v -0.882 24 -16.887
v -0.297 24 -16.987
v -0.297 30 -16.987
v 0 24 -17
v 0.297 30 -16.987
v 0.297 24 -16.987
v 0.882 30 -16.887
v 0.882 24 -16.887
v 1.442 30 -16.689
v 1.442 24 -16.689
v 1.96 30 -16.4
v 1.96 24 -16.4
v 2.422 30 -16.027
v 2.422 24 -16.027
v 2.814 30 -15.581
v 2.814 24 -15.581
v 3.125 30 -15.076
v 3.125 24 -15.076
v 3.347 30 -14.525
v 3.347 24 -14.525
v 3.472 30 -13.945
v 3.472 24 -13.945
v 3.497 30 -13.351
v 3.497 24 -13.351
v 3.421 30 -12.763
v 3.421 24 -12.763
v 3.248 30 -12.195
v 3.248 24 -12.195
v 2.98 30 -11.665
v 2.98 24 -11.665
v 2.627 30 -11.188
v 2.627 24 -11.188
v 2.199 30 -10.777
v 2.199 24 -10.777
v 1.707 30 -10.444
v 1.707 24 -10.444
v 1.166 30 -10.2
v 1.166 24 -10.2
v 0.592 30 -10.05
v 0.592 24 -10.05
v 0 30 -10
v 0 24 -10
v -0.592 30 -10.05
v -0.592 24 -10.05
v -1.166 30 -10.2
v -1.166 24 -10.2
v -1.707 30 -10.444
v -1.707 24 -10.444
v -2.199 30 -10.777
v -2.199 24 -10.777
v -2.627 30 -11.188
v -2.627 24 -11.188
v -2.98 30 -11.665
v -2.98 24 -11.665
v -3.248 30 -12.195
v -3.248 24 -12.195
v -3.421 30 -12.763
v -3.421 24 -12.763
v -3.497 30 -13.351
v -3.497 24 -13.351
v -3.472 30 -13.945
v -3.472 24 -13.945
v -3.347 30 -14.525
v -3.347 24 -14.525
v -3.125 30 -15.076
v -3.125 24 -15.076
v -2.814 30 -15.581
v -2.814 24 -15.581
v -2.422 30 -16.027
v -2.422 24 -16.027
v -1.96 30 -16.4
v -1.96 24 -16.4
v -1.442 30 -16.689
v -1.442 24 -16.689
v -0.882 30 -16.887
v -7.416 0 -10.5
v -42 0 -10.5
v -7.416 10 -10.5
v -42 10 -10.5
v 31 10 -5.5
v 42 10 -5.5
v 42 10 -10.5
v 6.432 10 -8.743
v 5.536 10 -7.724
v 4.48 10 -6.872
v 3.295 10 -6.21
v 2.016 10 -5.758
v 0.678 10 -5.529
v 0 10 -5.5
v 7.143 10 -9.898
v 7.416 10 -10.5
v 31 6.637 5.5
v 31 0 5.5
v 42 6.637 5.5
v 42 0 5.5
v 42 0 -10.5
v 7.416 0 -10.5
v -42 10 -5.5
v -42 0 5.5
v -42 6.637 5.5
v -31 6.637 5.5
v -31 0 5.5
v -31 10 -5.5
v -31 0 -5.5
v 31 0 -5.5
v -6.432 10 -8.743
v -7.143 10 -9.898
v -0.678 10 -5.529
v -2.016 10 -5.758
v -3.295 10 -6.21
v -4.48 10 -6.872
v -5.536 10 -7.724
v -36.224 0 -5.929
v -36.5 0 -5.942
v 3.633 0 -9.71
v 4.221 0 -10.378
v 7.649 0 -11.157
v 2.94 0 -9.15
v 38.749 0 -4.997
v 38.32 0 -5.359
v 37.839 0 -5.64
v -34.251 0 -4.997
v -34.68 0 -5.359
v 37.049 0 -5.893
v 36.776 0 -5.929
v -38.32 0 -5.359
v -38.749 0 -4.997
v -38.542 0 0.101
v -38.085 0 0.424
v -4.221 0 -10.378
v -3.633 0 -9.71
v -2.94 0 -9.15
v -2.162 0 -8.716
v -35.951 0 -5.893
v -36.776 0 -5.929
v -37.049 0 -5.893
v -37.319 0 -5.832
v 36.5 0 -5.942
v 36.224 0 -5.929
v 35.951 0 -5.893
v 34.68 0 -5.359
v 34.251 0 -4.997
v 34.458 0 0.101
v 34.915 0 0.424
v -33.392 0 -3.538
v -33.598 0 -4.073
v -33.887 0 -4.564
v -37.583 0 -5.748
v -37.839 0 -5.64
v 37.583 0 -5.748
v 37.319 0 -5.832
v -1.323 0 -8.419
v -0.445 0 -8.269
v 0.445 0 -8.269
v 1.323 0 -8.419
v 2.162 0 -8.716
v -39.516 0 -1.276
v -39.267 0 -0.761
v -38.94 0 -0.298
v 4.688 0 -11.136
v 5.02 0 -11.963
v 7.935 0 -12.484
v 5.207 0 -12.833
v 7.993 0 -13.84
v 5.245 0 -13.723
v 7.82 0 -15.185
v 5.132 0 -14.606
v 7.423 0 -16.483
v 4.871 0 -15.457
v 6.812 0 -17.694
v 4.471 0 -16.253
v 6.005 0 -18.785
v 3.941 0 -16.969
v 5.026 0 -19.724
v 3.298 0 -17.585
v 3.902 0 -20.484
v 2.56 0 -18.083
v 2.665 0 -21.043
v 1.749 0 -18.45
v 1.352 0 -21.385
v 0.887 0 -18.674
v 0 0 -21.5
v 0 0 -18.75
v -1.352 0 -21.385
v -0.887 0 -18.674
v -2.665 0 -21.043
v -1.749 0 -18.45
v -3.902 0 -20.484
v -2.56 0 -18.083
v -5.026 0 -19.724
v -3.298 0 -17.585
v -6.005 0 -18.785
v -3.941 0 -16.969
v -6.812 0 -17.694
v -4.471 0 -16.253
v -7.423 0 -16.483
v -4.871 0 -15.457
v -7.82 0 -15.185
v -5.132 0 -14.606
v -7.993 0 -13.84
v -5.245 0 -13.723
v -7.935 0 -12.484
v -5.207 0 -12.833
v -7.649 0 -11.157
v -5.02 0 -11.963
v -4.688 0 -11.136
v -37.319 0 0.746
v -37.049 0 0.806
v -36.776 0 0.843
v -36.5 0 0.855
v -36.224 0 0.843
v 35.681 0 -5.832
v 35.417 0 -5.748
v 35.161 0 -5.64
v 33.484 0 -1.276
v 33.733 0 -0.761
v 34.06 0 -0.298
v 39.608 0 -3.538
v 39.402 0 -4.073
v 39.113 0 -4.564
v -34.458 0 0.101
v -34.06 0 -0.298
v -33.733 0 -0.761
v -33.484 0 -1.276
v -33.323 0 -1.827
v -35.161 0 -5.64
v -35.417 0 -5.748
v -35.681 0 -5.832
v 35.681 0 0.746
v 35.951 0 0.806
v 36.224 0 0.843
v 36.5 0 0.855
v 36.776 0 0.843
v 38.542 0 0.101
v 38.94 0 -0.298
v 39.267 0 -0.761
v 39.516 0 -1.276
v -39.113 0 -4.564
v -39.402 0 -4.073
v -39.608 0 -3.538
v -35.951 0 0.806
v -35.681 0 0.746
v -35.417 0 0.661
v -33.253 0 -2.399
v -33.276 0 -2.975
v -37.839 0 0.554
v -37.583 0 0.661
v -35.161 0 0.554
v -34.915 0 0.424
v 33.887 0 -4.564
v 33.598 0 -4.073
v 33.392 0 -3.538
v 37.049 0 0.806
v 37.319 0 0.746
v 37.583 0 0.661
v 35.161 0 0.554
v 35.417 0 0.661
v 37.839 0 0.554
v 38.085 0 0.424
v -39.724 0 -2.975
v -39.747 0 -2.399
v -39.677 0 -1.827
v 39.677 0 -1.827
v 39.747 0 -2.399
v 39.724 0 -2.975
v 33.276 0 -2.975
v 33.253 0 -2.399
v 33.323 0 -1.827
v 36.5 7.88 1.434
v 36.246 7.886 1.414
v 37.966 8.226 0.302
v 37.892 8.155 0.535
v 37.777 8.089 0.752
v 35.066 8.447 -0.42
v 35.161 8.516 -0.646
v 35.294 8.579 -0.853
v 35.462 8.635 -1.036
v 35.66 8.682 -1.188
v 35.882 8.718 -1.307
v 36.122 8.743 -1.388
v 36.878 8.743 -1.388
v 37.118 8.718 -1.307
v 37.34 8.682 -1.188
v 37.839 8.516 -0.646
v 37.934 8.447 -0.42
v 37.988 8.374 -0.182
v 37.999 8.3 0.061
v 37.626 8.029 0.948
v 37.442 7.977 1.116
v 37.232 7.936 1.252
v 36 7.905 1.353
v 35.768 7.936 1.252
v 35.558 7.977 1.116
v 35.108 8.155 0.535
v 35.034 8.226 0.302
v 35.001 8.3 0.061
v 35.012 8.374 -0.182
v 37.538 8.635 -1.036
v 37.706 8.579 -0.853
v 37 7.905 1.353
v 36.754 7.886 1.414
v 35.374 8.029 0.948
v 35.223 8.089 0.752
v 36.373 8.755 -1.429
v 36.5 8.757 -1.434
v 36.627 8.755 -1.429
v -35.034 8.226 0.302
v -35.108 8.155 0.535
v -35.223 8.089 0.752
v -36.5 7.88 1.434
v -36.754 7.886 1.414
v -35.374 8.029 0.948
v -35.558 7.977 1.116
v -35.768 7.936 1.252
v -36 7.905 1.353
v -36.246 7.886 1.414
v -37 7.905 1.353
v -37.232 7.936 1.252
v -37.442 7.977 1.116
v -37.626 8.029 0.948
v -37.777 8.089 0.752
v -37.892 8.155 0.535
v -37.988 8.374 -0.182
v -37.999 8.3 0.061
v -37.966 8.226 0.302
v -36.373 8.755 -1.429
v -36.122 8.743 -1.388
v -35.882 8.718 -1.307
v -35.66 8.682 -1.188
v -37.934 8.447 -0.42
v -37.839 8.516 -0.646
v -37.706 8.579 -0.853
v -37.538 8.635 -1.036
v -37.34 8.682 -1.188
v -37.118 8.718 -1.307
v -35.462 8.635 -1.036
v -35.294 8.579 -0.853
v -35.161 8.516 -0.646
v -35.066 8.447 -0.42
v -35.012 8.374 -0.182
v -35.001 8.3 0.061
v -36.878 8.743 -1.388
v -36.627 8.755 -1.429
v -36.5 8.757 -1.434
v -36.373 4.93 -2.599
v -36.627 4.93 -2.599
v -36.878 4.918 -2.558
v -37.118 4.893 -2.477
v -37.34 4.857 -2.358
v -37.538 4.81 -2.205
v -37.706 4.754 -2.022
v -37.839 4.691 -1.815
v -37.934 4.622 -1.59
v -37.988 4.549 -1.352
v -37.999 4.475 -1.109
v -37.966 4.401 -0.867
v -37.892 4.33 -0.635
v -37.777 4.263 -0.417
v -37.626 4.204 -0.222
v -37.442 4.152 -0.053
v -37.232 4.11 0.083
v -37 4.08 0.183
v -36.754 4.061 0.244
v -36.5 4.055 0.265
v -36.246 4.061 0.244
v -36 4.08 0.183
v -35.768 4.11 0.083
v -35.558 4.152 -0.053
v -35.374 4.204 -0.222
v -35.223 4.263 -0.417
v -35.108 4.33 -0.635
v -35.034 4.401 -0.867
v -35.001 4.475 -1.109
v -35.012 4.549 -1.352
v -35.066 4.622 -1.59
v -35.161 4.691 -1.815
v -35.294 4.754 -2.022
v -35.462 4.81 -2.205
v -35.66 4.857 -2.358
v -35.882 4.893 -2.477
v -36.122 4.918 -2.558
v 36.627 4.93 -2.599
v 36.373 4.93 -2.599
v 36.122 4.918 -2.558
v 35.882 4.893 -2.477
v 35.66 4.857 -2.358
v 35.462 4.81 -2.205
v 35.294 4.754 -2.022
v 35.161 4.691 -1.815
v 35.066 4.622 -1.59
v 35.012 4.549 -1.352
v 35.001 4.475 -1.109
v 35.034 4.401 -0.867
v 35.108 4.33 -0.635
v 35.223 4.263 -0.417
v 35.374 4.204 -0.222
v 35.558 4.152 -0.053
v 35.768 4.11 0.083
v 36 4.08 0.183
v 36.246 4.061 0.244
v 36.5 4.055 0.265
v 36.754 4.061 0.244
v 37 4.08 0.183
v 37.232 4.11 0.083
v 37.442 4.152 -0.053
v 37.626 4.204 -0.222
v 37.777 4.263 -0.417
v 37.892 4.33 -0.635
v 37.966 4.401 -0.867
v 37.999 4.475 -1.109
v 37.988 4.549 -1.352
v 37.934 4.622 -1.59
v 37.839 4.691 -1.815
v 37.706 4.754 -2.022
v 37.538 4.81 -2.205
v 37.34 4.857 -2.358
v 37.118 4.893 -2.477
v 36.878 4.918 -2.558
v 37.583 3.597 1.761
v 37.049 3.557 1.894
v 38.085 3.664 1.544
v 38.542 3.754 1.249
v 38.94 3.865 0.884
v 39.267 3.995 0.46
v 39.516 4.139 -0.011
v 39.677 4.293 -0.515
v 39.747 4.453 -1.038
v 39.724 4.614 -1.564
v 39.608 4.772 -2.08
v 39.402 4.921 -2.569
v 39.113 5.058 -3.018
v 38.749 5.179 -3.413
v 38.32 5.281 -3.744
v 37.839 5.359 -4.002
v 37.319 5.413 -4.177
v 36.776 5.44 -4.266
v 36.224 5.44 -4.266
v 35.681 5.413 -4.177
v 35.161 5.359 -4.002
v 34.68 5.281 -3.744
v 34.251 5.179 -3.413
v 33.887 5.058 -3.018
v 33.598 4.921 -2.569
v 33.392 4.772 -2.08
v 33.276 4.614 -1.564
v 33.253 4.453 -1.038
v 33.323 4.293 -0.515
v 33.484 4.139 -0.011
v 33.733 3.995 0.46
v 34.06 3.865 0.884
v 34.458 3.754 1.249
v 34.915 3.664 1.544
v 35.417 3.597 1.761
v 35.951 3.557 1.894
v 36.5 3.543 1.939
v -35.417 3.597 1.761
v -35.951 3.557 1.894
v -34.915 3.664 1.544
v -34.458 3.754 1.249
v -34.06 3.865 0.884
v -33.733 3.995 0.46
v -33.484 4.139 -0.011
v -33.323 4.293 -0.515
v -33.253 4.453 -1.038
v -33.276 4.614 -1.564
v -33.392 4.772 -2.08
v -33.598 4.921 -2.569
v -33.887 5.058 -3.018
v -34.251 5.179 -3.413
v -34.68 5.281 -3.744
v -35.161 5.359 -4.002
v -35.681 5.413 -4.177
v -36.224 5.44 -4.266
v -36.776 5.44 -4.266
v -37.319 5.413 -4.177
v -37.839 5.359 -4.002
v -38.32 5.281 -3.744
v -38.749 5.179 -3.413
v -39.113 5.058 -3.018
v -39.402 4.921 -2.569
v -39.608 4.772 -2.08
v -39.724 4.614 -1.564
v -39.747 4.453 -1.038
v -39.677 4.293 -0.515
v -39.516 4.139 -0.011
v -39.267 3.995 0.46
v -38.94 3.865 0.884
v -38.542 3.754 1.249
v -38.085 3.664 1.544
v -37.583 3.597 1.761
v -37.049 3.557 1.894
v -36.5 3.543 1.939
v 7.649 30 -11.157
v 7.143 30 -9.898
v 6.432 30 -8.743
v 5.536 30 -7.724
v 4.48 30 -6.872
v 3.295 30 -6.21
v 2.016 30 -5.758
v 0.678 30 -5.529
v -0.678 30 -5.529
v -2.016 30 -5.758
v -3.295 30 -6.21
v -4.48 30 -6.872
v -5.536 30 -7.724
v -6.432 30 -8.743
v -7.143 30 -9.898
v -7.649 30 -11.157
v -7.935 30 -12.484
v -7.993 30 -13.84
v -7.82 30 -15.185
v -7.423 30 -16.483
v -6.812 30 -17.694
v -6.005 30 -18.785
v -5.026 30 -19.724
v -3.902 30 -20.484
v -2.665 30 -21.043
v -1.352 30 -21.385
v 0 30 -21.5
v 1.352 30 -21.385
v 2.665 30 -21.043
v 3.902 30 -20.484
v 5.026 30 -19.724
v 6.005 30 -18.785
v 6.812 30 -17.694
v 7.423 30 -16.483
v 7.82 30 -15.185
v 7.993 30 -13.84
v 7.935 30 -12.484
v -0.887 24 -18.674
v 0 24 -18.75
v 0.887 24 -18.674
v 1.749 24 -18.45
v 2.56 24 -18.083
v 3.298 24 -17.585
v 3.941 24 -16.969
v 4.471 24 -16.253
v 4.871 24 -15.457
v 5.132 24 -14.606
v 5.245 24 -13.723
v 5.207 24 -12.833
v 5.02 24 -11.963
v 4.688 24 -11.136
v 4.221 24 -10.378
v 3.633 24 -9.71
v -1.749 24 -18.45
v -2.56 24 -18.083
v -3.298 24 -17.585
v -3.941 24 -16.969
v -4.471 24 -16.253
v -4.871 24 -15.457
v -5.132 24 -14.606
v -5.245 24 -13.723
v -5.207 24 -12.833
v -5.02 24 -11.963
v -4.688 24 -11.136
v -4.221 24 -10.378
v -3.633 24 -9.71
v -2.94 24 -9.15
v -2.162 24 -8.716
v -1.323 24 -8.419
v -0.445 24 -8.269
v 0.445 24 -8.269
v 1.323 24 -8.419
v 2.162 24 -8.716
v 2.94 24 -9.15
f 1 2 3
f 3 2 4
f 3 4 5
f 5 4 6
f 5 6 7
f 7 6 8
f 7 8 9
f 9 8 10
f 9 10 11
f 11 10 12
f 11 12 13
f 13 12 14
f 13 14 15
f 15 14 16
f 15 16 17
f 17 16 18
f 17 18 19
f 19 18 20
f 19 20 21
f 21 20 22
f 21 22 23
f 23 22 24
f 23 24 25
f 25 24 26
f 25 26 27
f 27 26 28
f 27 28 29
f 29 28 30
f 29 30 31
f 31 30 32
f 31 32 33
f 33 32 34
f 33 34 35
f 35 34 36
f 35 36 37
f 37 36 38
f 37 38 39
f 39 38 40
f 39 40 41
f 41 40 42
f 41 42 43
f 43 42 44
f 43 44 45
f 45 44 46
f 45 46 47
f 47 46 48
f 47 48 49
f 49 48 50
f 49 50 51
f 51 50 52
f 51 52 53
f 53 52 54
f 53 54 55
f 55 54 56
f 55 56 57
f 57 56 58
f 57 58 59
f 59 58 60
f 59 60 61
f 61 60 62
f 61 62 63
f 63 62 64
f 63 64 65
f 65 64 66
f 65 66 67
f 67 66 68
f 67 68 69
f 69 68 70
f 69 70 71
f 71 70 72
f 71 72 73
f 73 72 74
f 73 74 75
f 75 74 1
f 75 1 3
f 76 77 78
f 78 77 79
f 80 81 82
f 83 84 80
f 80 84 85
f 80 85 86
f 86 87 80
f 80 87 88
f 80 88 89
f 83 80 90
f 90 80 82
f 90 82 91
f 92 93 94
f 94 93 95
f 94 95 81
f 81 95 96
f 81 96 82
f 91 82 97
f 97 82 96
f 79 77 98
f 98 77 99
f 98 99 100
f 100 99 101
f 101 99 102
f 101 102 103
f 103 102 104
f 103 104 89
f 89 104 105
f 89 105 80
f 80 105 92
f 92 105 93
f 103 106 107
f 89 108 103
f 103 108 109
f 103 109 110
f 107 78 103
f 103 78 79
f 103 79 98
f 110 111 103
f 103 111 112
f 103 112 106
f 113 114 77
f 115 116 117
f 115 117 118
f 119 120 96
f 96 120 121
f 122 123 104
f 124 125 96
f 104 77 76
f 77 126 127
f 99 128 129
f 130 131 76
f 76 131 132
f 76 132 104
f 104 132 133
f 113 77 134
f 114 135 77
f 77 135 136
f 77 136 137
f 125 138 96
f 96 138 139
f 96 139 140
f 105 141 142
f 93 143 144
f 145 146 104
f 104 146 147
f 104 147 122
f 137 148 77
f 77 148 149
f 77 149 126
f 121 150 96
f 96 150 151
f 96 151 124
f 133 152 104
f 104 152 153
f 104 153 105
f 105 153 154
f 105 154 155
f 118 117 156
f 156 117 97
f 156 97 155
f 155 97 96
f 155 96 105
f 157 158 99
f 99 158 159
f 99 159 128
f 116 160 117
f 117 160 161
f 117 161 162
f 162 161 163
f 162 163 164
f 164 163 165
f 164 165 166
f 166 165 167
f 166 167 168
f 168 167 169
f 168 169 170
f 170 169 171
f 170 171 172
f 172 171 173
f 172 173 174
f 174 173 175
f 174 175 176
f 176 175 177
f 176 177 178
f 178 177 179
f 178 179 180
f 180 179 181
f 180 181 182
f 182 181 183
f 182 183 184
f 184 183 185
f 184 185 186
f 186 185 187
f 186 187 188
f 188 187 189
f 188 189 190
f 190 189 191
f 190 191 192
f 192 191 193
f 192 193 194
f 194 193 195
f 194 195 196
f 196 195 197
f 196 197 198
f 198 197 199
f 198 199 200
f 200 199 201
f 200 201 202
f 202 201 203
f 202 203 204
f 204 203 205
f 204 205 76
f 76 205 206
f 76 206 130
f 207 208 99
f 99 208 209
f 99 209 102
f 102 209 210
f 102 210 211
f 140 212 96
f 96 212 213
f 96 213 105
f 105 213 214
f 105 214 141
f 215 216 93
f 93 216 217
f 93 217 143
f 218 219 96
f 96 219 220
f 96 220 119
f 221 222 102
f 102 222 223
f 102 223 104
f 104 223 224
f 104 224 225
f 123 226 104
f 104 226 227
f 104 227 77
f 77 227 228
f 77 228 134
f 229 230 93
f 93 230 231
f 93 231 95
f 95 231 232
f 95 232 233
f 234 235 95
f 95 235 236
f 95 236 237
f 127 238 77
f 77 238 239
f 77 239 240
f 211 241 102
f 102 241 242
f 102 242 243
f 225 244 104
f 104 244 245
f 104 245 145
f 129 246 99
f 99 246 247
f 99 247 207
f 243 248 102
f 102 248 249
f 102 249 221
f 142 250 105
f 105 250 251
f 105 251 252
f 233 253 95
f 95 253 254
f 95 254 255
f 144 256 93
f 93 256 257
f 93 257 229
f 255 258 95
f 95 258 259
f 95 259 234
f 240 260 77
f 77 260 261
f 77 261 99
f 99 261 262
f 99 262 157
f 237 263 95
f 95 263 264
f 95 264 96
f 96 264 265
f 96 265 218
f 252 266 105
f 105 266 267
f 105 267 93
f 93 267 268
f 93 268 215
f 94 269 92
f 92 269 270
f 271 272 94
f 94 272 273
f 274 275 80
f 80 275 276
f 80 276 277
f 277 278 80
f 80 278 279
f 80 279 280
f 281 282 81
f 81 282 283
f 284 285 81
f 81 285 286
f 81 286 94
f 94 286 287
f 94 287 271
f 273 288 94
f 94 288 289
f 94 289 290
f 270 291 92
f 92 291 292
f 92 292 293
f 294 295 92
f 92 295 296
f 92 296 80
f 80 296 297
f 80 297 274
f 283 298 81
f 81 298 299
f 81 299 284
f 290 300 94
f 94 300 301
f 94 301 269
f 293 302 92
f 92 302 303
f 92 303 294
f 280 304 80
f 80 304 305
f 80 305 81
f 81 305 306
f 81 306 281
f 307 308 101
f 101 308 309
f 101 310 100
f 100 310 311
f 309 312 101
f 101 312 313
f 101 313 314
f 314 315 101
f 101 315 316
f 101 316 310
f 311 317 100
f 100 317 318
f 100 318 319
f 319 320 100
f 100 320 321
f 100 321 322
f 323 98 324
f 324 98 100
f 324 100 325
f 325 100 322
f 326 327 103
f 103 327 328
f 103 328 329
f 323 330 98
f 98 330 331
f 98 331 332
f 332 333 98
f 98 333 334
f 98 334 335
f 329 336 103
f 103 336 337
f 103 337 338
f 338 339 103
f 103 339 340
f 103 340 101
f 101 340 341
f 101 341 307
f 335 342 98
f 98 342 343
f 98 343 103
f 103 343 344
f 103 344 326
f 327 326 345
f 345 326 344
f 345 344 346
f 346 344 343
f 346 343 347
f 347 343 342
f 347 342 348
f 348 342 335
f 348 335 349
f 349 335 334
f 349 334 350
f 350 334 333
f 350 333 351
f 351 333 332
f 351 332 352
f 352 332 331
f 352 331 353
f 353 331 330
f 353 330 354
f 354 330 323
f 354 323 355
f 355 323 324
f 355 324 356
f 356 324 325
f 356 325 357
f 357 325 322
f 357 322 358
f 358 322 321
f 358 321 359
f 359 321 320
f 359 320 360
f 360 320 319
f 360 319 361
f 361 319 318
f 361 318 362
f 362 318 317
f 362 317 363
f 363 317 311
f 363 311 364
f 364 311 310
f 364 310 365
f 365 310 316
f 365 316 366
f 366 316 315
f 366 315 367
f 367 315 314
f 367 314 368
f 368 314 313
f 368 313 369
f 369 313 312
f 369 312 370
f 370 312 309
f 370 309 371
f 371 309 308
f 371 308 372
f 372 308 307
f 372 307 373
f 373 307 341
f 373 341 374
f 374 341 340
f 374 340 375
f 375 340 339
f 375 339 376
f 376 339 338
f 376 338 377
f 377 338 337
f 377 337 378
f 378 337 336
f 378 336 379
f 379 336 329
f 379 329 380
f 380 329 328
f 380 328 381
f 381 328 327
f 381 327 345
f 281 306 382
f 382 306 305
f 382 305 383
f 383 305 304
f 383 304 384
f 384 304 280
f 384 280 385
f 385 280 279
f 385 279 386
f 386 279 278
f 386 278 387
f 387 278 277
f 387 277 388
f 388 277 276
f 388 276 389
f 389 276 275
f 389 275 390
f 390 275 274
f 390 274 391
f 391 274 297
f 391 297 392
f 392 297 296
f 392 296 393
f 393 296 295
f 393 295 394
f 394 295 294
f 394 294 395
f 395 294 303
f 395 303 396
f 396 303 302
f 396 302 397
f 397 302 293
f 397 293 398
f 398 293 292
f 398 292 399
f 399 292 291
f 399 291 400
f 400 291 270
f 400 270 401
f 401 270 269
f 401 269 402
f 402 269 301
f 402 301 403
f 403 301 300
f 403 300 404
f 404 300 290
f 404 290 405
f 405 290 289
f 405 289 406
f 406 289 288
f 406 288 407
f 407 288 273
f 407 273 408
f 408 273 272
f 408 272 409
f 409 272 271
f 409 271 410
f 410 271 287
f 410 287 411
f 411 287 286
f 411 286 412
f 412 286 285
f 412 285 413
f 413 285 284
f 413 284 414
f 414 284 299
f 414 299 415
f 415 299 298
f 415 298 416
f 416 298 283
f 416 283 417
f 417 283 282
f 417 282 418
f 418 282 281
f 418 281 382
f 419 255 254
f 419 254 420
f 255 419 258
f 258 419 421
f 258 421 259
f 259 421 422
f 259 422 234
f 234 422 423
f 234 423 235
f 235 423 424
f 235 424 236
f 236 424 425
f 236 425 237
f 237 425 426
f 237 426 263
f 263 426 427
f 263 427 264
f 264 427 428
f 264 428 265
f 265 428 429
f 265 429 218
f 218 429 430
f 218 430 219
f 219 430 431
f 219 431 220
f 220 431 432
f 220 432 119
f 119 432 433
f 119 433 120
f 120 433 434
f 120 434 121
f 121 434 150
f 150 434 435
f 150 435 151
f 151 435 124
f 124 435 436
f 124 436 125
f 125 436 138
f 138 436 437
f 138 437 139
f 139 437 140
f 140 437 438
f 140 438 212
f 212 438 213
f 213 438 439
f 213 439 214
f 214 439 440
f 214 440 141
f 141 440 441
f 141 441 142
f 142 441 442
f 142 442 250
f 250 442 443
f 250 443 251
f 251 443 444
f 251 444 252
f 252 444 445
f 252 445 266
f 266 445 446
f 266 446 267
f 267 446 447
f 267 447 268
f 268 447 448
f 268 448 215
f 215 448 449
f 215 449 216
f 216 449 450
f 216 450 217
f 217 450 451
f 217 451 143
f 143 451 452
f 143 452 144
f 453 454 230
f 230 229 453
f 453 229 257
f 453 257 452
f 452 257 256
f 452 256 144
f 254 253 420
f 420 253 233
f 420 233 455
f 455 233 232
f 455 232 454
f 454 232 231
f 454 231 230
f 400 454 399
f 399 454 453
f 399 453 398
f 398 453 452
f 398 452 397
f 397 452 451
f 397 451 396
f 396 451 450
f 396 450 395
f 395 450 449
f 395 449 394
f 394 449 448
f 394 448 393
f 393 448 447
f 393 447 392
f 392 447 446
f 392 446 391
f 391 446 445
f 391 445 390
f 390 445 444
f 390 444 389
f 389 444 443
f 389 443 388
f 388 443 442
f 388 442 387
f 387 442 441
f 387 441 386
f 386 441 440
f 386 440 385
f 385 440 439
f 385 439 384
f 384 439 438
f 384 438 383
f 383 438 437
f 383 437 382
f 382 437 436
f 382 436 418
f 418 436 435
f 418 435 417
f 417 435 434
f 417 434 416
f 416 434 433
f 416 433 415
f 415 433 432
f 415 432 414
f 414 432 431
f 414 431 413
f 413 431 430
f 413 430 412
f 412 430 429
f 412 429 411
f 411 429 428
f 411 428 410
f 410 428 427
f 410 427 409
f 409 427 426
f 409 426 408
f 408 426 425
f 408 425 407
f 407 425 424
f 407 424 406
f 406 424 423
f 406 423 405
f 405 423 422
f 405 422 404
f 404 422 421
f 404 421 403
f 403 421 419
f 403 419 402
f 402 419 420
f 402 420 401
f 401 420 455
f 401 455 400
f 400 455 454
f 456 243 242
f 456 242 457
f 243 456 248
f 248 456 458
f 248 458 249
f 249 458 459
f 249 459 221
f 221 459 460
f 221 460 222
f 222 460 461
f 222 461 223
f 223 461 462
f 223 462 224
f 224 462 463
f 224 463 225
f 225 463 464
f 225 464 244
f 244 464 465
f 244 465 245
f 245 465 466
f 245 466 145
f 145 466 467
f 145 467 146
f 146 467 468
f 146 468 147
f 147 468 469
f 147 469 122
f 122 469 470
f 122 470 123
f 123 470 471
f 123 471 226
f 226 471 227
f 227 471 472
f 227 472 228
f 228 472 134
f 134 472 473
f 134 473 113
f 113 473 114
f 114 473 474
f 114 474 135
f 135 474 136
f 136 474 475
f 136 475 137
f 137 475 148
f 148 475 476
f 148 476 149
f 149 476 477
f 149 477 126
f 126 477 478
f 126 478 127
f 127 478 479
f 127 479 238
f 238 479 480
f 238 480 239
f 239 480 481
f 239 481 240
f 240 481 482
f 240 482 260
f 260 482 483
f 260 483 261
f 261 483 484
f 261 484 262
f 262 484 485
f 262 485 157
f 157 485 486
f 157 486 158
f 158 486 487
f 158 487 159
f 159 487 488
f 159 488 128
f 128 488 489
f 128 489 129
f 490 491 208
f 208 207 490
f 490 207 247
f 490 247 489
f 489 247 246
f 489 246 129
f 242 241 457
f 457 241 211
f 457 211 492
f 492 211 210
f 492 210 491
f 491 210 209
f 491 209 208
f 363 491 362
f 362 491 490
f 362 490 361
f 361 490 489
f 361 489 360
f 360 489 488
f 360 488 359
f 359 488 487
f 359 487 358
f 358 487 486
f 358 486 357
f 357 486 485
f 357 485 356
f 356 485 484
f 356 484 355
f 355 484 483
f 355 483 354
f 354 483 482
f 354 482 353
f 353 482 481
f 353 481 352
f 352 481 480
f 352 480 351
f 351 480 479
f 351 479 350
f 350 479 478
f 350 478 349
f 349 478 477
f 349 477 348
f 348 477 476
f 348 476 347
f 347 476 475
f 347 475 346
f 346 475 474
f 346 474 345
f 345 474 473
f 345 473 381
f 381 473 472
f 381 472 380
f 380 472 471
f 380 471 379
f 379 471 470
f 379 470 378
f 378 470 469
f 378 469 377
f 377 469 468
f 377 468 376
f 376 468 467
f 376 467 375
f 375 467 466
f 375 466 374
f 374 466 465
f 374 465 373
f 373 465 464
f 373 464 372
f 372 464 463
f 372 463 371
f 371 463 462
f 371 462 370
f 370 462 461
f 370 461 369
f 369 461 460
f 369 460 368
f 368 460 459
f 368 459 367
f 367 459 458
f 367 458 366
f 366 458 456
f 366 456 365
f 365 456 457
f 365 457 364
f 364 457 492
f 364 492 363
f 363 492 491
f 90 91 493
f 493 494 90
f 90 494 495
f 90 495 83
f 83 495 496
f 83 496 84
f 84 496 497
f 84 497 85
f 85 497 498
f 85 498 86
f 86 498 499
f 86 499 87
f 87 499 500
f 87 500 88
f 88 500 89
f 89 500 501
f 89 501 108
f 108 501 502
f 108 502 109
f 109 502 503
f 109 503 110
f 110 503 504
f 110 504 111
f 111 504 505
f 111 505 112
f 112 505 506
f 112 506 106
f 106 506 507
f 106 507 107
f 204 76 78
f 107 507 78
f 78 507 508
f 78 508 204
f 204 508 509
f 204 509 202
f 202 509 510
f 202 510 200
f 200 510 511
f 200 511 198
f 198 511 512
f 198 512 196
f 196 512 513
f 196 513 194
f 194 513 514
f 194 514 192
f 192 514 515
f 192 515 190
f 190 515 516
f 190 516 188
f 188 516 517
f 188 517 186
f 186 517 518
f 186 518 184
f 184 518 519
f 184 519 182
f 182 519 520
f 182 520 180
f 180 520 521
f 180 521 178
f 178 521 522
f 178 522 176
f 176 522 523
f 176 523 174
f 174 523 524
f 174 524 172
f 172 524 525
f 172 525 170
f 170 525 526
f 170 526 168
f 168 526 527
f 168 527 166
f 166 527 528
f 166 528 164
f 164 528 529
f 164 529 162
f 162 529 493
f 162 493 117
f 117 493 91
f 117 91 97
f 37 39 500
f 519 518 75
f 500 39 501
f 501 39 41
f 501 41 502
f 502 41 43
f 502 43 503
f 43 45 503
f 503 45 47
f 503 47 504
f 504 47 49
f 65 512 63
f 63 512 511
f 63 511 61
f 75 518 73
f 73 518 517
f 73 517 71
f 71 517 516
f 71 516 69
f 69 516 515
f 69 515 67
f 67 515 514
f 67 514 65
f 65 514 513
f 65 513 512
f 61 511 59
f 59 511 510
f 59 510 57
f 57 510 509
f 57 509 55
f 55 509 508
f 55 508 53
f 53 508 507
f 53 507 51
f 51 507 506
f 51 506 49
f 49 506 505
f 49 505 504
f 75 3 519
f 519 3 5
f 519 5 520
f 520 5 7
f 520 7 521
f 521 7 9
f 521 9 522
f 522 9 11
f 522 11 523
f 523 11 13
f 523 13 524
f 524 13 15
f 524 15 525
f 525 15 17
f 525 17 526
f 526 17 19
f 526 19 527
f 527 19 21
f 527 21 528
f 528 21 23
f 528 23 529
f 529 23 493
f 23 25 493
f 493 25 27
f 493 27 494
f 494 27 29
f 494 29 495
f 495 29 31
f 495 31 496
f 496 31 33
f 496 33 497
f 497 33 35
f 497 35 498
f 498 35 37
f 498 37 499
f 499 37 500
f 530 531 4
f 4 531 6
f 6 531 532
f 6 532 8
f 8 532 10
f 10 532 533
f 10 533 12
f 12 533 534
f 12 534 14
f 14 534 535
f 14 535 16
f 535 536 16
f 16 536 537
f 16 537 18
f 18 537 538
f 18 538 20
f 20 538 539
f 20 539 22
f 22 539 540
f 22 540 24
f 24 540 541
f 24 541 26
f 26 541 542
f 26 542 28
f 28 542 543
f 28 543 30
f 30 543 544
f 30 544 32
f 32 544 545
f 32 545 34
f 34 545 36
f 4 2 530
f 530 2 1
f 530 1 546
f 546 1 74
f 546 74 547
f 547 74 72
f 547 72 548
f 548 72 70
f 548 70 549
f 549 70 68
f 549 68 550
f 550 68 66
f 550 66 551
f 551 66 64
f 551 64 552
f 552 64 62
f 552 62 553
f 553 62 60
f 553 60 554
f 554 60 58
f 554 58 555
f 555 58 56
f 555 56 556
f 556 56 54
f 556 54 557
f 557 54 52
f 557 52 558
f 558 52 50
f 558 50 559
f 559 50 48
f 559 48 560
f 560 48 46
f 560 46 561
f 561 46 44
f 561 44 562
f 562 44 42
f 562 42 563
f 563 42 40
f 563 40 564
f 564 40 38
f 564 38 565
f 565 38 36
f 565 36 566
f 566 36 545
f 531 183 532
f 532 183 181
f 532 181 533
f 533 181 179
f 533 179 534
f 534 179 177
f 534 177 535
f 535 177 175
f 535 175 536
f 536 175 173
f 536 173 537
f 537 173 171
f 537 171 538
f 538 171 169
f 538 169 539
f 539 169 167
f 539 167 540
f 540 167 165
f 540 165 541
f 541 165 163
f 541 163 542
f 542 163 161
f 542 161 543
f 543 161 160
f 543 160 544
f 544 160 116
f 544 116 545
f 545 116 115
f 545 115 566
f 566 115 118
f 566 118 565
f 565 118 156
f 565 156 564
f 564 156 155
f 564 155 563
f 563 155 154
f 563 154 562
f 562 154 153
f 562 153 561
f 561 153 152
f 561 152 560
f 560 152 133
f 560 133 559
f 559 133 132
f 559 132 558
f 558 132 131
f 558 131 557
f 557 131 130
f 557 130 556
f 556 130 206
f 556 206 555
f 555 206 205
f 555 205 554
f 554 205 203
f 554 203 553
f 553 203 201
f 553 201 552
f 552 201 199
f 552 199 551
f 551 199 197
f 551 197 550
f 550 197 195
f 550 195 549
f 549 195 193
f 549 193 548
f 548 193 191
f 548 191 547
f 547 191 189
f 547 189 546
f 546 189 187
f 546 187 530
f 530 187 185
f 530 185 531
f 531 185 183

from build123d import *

# Parameters (mm, degrees)
EXTRUDE_1_DEPTH     = 10
CUT_EXTRUDE_4_DEPTH = 85
SKETCH_6_R          = 1.5
CUT_EXTRUDE_5_DEPTH = 12.024906083
SKETCH_7_R          = 3.25
CUT_EXTRUDE_6_DEPTH = 8.024906083
SKETCH_8_R          = 8
EXTRUDE_2_DEPTH     = 30
SKETCH_9_R          = 3.5
CUT_EXTRUDE_7_DEPTH = 30
SKETCH_10_R         = 5.25
CUT_EXTRUDE_8_DEPTH = 24


with BuildPart() as part:
    # 草图1 → 凸台-拉伸1 (new body)
    with BuildSketch(Plane(origin=(0, 0, 0), x_dir=(1, 0, 0), z_dir=(0, 1, 0))):
        Polygon((-42, 5.5), (-42, 10.5), (42, 10.5), (42, 5.5), (42, -5.5), (31, -5.5), (31, 5.5), (-31, 5.5), (-31, -5.5), (-42, -5.5), align=None)
    extrude(amount=EXTRUDE_1_DEPTH)

    # 草图5 → 切除-拉伸4 (cut, through all)
    with BuildSketch(Plane.ZY.offset(42)):
        Polygon((-5.5, 10), (5.5, 6.636962504), (5.5, 10), align=None)
    extrude(amount=-CUT_EXTRUDE_4_DEPTH, mode=Mode.SUBTRACT)

    # 草图6 → 切除-拉伸5 (cut, through all)
    with BuildSketch(Plane(origin=(0, 12.692999356, -14.308403996), x_dir=(1, 0, 0), z_dir=(0, -0.956304756, -0.292371705))):
        with Locations((-36.5, 14.962180107)):
            Circle(SKETCH_6_R)
        with Locations((36.5, 14.962180107)):
            Circle(SKETCH_6_R)
    extrude(amount=CUT_EXTRUDE_5_DEPTH, mode=Mode.SUBTRACT)

    # 草图7 → 切除-拉伸6 (cut, through all)
    with BuildSketch(Plane(origin=(0, 3.782188354, 1.156331023), x_dir=(1, 0, 0), z_dir=(0, 0.956304756, 0.292371705))):
        with Locations((36.5, 2.432088544)):
            Circle(SKETCH_7_R)
        with Locations((-36.5, 2.432088544)):
            Circle(SKETCH_7_R)
    extrude(amount=-CUT_EXTRUDE_6_DEPTH, mode=Mode.SUBTRACT)

    # 草图8 → 凸台-拉伸2 (add)
    with BuildSketch(Plane.XZ):
        with Locations((0, -13.5)):
            Circle(SKETCH_8_R)
    extrude(amount=-EXTRUDE_2_DEPTH)

    # 草图9 → 切除-拉伸7 (cut)
    with BuildSketch(Plane(origin=(0, 30, 0), x_dir=(1, 0, 0), z_dir=(0, 1, 0))):
        with Locations((0, 13.5)):
            Circle(SKETCH_9_R)
    extrude(amount=-CUT_EXTRUDE_7_DEPTH, mode=Mode.SUBTRACT)

    # 草图10 → 切除-拉伸8 (cut)
    with BuildSketch(Plane.XZ):
        with Locations((0, -13.5)):
            Circle(SKETCH_10_R)
    extrude(amount=-CUT_EXTRUDE_8_DEPTH, mode=Mode.SUBTRACT)


solid = part.part
